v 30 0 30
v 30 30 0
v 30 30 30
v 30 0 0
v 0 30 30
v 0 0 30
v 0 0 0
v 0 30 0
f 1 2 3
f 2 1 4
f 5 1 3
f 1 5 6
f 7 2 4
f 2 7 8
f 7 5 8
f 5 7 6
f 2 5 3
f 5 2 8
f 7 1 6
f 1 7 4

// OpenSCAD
// Parameters for the step block
block_width = 30;  // Width of the block
block_depth = 30;  // Depth of the block
block_height = 30; // Total height of the block

step_depth = 10;   // Depth of each step
step_height = 10;  // Height of each step

// Function to create the step block
module step_block() {
    // Base block
    cube([block_width, block_depth, block_height]);

    // Subtract steps
    difference() {
        // Full block
        cube([block_width, block_depth, block_height]);

        // Step 1
        translate([0, block_depth - step_depth, block_height - step_height])
            cube([block_width, step_depth, step_height]);

        // Step 2
        translate([0, block_depth - 2 * step_depth, block_height - 2 * step_height])
            cube([block_width, step_depth, step_height]);

        // Step 3
        translate([0, block_depth - 3 * step_depth, block_height - 3 * step_height])
            cube([block_width, step_depth, step_height]);
    }
}

// Render the step block
step_block();
